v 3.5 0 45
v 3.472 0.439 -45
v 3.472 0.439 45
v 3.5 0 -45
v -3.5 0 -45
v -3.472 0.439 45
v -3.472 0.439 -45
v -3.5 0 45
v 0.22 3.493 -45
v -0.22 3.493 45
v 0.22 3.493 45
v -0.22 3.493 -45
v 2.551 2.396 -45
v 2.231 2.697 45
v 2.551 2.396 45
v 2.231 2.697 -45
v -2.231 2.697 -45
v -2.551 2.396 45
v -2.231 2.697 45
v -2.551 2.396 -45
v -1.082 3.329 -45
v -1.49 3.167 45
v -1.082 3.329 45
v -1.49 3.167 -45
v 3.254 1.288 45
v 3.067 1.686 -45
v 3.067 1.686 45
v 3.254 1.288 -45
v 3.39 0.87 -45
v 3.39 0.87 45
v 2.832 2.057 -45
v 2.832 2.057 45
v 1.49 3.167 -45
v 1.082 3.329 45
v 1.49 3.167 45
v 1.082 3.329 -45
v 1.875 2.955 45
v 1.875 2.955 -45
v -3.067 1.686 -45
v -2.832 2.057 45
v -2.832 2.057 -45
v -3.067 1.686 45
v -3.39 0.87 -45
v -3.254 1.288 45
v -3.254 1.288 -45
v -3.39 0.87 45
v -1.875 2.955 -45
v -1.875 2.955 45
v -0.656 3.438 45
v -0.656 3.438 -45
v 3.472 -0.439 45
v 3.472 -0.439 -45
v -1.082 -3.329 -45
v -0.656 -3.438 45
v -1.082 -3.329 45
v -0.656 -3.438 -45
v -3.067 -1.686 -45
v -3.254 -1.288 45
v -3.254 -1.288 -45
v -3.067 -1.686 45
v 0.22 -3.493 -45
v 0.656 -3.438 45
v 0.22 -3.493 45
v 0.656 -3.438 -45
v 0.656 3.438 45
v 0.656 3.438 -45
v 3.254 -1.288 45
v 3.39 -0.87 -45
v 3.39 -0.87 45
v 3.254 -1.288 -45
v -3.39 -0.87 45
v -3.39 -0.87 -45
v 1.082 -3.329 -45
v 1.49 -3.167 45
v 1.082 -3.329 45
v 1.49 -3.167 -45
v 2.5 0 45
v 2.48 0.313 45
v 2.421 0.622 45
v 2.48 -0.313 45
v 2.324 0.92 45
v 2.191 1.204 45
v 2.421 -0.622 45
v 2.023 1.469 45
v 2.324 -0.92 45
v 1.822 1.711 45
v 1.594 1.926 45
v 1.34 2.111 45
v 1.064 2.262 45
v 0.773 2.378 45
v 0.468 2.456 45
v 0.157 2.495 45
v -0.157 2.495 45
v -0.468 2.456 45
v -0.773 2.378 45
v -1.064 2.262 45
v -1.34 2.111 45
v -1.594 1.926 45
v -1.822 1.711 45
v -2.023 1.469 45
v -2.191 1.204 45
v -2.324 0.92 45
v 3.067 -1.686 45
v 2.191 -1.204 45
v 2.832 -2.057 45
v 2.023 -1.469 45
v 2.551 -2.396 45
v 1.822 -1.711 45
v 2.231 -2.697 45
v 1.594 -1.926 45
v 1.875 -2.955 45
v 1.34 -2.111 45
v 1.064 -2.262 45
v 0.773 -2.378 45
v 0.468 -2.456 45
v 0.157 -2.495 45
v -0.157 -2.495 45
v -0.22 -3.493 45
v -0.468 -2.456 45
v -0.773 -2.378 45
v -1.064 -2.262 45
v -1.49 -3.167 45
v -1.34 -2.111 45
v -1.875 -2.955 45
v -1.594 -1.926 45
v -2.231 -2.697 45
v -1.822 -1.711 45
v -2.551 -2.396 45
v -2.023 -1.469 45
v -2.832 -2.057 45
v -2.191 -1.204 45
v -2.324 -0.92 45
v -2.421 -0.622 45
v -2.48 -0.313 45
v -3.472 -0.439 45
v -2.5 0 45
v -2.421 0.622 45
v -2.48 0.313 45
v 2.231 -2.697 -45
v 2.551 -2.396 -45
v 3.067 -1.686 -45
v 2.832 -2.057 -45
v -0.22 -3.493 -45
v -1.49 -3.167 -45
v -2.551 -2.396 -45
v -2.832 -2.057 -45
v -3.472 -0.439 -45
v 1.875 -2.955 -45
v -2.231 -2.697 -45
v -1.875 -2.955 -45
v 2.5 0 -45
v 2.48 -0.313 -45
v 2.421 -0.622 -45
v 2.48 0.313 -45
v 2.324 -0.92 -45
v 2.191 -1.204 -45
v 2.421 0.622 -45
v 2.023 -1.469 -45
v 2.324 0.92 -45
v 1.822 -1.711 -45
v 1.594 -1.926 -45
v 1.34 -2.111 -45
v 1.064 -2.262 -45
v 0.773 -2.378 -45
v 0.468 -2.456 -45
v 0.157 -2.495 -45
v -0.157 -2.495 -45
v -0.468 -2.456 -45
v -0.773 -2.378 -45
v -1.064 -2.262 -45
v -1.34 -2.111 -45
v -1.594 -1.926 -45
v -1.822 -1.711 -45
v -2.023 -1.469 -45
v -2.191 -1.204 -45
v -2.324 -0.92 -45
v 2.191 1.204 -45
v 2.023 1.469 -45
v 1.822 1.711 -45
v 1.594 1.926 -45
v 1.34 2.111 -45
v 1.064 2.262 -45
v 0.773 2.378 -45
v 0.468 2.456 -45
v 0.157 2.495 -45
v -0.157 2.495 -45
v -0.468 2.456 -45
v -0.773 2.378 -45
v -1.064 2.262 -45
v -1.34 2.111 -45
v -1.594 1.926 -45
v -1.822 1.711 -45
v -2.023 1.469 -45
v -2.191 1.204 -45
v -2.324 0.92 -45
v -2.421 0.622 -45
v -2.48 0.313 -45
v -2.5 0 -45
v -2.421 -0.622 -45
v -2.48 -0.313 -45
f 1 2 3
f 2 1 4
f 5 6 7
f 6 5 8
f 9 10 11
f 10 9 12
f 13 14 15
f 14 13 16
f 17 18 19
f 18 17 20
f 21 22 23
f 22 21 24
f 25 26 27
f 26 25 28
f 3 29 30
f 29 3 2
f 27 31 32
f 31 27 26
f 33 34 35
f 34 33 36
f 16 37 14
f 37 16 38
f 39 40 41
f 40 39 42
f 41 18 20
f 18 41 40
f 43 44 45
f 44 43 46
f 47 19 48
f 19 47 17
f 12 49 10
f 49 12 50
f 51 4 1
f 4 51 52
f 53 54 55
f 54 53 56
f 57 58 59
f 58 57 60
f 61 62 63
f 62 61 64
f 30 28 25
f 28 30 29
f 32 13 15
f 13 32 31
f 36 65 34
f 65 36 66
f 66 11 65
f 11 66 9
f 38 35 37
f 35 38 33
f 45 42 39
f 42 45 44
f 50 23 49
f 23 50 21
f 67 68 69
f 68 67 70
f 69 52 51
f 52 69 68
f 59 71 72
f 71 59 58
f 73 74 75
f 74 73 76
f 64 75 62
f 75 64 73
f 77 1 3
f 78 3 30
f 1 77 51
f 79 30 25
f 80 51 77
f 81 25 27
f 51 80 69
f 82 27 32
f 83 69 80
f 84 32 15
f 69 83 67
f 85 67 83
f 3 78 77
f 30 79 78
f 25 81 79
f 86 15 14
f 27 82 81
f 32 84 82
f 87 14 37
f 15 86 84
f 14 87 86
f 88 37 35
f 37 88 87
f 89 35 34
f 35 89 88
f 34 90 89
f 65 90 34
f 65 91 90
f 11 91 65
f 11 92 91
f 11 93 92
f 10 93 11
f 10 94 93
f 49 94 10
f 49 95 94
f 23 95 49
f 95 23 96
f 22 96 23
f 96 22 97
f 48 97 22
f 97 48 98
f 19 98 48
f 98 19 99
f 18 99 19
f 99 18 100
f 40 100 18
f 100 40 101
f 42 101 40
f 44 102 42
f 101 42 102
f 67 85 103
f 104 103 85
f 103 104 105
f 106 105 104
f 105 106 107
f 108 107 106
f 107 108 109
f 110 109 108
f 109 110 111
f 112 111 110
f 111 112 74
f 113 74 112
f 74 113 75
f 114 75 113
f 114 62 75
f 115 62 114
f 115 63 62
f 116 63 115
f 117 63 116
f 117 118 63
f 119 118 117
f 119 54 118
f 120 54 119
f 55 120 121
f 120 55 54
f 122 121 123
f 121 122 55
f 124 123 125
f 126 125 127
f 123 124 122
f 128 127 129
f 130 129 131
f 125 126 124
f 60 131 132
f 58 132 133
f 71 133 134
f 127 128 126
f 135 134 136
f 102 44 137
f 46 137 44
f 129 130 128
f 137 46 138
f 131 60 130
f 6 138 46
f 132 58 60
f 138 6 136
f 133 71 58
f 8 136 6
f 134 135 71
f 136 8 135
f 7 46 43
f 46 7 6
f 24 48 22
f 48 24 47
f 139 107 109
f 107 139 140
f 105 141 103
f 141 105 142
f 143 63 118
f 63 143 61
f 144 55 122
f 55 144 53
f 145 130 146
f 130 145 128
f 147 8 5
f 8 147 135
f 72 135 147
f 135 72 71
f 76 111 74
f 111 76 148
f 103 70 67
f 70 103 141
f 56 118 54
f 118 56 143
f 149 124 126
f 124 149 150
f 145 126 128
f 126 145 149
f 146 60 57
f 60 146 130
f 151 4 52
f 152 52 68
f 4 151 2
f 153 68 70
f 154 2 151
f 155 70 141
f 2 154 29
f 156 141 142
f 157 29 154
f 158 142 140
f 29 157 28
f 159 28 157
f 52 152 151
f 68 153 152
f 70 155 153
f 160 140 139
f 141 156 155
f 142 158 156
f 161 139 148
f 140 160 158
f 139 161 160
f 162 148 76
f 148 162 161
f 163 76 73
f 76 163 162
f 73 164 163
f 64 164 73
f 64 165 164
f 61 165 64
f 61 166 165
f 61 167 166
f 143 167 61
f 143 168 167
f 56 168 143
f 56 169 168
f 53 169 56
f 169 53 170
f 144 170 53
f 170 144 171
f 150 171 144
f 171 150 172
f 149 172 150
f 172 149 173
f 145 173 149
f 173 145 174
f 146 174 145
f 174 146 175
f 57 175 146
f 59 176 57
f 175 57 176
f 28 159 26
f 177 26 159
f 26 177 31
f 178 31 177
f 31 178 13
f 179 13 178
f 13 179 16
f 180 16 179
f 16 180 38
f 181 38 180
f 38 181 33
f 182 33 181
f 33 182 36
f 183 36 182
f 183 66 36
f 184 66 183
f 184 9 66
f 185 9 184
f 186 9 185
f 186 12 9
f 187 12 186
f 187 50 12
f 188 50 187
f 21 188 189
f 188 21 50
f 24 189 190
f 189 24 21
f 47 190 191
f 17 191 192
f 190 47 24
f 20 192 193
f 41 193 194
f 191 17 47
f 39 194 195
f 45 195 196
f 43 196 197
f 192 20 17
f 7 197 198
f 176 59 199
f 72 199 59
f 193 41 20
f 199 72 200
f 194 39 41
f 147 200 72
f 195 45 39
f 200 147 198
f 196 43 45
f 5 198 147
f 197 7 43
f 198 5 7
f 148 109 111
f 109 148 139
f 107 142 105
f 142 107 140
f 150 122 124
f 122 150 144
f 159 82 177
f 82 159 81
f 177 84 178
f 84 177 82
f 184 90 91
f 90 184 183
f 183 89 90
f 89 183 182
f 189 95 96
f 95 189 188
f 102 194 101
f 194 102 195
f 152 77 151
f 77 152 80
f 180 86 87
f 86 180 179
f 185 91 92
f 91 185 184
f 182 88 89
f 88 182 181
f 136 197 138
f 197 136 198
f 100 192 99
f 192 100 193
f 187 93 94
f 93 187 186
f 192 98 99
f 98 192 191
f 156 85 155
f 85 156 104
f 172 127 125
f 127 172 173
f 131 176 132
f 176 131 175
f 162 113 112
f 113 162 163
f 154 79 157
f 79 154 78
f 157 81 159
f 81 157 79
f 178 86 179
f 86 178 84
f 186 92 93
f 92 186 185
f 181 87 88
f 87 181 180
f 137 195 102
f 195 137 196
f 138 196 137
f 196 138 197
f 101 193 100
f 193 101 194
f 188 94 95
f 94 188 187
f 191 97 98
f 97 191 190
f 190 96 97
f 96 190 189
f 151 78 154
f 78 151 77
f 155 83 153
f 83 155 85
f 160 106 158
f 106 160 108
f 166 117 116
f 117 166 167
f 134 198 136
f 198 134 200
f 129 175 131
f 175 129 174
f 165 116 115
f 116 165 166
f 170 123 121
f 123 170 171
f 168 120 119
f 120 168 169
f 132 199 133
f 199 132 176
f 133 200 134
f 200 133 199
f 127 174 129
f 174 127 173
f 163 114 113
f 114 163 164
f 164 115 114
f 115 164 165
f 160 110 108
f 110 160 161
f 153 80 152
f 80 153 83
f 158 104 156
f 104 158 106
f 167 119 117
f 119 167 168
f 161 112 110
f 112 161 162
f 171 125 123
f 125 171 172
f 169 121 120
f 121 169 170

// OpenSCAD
$fn = 50;


difference() {
	union() {
		translate(v = [0, 0, -45.0000000000]) {
			cylinder(h = 90, r = 3.5000000000);
		}
	}
	union() {
		translate(v = [0, 0, -100.0000000000]) {
			cylinder(h = 200, r = 2.5000000000);
		}
	}
}
